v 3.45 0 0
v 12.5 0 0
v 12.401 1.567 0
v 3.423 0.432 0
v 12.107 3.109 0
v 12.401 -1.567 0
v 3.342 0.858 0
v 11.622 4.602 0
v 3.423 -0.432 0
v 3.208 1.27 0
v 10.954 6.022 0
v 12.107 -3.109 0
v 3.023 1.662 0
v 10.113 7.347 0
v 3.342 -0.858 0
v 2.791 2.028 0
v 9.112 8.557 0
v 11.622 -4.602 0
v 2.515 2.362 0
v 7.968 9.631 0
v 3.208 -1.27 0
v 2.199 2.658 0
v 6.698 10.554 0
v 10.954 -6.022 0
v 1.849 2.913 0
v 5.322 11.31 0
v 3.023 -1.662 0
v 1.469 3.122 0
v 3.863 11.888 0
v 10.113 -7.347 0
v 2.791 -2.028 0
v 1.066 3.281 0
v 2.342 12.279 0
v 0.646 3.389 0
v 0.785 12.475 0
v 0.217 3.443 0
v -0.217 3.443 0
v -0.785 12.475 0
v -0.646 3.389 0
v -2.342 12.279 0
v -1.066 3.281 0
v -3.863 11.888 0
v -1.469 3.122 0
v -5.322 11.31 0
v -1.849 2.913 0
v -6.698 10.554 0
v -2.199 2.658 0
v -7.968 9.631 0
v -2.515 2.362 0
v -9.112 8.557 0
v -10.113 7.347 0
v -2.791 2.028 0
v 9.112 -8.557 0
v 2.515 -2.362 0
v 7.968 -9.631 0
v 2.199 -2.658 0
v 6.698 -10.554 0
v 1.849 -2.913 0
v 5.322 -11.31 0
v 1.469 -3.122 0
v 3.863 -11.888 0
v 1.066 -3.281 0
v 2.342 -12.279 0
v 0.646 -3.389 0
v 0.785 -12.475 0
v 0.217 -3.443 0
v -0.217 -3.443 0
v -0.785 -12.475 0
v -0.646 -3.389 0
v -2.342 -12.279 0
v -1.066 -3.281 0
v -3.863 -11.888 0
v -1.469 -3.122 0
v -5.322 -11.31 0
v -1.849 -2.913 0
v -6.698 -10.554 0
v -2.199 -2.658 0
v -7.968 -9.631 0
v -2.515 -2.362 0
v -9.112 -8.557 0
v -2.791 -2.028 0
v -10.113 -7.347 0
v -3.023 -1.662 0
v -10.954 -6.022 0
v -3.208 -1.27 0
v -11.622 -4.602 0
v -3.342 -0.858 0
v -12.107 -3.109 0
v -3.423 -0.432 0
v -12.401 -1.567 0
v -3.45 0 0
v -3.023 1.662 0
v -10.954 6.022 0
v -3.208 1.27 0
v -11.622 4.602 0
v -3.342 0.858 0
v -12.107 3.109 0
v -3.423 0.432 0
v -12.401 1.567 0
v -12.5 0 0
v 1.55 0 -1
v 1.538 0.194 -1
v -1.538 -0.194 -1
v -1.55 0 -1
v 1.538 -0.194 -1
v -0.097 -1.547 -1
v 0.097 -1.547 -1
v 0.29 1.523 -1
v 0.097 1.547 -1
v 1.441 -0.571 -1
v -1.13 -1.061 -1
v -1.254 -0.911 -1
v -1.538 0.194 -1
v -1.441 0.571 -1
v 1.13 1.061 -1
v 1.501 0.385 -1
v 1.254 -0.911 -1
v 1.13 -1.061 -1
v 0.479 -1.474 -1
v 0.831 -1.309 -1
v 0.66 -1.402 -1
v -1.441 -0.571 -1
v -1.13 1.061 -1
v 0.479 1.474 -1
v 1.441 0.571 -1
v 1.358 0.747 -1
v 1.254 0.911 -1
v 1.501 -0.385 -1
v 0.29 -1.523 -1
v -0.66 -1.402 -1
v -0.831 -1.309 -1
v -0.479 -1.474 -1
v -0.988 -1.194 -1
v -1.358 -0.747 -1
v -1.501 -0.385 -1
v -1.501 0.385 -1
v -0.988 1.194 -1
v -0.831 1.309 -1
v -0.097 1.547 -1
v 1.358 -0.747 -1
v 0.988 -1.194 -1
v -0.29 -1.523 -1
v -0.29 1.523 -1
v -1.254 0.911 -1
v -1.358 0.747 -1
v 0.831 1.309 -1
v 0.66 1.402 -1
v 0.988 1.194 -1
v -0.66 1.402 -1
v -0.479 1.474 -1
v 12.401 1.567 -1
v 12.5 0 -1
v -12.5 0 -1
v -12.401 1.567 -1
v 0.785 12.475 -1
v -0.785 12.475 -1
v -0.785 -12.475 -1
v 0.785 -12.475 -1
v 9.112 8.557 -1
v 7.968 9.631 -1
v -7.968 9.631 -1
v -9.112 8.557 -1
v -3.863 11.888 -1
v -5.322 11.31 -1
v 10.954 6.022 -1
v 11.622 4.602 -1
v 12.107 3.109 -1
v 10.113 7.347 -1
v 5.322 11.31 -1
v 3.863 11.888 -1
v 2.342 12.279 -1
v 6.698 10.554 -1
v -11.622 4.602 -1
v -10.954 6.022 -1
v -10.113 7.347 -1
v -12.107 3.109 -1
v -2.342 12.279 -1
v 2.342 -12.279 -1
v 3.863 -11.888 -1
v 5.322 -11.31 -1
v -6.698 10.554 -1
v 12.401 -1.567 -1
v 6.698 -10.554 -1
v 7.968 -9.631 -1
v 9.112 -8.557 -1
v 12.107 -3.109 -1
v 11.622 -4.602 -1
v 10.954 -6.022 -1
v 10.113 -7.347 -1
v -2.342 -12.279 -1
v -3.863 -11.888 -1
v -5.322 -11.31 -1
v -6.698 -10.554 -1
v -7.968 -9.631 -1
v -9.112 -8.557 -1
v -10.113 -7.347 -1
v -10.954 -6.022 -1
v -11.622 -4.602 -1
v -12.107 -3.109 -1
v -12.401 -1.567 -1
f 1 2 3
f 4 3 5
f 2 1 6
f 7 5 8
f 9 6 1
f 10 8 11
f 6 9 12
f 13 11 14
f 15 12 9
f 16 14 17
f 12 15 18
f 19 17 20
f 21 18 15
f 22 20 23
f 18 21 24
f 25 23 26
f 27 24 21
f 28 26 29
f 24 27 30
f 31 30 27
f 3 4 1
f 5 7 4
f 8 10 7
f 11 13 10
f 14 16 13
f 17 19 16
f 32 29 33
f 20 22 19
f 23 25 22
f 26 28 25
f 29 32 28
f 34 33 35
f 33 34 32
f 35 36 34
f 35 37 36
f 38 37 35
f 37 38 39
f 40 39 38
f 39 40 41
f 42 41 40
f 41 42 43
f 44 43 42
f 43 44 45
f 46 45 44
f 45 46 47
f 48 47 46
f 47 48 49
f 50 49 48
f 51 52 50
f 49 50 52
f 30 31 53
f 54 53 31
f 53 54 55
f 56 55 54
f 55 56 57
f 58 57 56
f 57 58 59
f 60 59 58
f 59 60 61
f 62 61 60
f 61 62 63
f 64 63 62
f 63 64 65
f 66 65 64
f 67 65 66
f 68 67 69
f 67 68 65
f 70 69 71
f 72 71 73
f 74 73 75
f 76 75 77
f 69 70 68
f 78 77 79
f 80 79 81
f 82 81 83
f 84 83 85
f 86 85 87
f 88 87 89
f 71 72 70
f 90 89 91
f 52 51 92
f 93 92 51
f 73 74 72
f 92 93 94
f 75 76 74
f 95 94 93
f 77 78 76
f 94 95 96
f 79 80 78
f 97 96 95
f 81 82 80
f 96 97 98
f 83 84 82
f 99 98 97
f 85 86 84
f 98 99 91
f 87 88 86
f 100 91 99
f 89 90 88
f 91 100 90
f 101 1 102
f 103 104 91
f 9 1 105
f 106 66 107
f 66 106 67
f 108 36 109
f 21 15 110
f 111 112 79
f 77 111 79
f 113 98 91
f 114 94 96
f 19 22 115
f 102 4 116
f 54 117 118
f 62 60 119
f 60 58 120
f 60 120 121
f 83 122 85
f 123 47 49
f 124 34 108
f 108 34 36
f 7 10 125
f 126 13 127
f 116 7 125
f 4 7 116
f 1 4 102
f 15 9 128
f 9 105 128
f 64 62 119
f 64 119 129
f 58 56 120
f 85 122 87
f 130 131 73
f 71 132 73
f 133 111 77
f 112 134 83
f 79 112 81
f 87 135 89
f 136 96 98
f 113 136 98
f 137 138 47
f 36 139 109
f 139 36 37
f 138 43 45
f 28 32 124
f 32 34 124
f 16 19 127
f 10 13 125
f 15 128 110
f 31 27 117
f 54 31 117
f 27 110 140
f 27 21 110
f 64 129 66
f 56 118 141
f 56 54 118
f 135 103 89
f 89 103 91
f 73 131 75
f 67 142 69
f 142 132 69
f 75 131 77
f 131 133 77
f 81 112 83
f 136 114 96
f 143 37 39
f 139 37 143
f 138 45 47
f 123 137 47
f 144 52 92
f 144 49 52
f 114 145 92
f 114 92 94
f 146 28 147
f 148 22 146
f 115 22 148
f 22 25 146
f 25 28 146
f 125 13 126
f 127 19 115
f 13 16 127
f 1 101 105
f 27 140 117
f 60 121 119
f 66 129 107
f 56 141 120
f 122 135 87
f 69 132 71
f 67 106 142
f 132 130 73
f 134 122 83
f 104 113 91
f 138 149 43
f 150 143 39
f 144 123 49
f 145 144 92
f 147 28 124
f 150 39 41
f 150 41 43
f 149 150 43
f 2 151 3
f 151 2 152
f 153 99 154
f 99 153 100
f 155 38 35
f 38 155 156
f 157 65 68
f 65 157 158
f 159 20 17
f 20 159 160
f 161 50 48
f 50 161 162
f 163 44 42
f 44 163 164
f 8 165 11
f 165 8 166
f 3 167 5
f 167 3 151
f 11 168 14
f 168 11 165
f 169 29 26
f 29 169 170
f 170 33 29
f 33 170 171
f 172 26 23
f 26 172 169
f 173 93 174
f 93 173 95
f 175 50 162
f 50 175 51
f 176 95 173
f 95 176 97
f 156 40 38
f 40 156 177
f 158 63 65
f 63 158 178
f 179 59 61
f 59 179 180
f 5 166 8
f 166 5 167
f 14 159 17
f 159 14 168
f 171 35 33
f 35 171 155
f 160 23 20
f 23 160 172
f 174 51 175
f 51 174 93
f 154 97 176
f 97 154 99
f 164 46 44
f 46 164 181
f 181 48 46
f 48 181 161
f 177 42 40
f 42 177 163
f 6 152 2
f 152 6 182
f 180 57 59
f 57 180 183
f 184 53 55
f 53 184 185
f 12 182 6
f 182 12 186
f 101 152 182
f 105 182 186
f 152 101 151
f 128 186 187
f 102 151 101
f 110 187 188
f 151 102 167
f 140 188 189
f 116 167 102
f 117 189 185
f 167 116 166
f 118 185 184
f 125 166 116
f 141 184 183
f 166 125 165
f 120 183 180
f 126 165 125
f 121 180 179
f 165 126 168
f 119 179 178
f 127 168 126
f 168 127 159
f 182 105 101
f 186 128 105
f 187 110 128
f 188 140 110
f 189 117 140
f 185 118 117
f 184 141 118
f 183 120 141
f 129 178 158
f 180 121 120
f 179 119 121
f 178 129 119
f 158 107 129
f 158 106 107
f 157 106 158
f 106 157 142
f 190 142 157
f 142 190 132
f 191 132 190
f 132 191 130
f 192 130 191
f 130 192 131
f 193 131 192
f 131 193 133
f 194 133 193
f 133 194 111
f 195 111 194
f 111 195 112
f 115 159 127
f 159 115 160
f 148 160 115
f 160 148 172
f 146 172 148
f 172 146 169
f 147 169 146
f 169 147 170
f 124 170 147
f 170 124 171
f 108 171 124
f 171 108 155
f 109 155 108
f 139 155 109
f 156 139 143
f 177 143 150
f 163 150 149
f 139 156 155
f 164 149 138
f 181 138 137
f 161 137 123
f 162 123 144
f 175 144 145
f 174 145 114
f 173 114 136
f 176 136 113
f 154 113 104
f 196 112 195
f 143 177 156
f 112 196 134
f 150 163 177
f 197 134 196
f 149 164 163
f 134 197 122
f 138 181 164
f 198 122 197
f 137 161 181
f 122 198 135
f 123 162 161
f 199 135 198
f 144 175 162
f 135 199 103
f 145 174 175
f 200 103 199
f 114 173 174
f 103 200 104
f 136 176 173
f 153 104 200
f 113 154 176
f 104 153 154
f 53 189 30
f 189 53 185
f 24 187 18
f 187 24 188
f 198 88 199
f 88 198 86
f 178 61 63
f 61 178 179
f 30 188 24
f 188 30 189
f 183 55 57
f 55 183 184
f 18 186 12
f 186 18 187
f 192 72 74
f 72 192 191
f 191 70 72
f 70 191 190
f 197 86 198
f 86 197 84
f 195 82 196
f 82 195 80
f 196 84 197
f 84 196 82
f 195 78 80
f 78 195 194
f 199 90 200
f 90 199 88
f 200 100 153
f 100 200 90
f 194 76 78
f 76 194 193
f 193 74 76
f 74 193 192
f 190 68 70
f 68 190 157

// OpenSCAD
$fn = 50;


difference() {
	union() {
		translate(v = [0, 0, -1.0000000000]) {
			cylinder(h = 1.0000000000, r = 12.5000000000);
		}
	}
	union() {
		translate(v = [0, 0, 0]) {
			rotate(a = [0, 0, 0]) {
				difference() {
					union() {
						translate(v = [0, 0, -4.0000000000]) {
							cylinder(h = 4.0000000000, r = 1.2500000000);
						}
						translate(v = [0, 0, -1.0000000000]) {
							cylinder(h = 1.0000000000, r1 = 1.5500000000, r2 = 3.4500000000);
						}
						translate(v = [0, 0, -4.0000000000]) {
							cylinder(h = 4.0000000000, r = 1.5500000000);
						}
						translate(v = [0, 0, -4.0000000000]) {
							cylinder(h = 4.0000000000, r = 1.2500000000);
						}
					}
					union();
				}
			}
		}
	}
}
